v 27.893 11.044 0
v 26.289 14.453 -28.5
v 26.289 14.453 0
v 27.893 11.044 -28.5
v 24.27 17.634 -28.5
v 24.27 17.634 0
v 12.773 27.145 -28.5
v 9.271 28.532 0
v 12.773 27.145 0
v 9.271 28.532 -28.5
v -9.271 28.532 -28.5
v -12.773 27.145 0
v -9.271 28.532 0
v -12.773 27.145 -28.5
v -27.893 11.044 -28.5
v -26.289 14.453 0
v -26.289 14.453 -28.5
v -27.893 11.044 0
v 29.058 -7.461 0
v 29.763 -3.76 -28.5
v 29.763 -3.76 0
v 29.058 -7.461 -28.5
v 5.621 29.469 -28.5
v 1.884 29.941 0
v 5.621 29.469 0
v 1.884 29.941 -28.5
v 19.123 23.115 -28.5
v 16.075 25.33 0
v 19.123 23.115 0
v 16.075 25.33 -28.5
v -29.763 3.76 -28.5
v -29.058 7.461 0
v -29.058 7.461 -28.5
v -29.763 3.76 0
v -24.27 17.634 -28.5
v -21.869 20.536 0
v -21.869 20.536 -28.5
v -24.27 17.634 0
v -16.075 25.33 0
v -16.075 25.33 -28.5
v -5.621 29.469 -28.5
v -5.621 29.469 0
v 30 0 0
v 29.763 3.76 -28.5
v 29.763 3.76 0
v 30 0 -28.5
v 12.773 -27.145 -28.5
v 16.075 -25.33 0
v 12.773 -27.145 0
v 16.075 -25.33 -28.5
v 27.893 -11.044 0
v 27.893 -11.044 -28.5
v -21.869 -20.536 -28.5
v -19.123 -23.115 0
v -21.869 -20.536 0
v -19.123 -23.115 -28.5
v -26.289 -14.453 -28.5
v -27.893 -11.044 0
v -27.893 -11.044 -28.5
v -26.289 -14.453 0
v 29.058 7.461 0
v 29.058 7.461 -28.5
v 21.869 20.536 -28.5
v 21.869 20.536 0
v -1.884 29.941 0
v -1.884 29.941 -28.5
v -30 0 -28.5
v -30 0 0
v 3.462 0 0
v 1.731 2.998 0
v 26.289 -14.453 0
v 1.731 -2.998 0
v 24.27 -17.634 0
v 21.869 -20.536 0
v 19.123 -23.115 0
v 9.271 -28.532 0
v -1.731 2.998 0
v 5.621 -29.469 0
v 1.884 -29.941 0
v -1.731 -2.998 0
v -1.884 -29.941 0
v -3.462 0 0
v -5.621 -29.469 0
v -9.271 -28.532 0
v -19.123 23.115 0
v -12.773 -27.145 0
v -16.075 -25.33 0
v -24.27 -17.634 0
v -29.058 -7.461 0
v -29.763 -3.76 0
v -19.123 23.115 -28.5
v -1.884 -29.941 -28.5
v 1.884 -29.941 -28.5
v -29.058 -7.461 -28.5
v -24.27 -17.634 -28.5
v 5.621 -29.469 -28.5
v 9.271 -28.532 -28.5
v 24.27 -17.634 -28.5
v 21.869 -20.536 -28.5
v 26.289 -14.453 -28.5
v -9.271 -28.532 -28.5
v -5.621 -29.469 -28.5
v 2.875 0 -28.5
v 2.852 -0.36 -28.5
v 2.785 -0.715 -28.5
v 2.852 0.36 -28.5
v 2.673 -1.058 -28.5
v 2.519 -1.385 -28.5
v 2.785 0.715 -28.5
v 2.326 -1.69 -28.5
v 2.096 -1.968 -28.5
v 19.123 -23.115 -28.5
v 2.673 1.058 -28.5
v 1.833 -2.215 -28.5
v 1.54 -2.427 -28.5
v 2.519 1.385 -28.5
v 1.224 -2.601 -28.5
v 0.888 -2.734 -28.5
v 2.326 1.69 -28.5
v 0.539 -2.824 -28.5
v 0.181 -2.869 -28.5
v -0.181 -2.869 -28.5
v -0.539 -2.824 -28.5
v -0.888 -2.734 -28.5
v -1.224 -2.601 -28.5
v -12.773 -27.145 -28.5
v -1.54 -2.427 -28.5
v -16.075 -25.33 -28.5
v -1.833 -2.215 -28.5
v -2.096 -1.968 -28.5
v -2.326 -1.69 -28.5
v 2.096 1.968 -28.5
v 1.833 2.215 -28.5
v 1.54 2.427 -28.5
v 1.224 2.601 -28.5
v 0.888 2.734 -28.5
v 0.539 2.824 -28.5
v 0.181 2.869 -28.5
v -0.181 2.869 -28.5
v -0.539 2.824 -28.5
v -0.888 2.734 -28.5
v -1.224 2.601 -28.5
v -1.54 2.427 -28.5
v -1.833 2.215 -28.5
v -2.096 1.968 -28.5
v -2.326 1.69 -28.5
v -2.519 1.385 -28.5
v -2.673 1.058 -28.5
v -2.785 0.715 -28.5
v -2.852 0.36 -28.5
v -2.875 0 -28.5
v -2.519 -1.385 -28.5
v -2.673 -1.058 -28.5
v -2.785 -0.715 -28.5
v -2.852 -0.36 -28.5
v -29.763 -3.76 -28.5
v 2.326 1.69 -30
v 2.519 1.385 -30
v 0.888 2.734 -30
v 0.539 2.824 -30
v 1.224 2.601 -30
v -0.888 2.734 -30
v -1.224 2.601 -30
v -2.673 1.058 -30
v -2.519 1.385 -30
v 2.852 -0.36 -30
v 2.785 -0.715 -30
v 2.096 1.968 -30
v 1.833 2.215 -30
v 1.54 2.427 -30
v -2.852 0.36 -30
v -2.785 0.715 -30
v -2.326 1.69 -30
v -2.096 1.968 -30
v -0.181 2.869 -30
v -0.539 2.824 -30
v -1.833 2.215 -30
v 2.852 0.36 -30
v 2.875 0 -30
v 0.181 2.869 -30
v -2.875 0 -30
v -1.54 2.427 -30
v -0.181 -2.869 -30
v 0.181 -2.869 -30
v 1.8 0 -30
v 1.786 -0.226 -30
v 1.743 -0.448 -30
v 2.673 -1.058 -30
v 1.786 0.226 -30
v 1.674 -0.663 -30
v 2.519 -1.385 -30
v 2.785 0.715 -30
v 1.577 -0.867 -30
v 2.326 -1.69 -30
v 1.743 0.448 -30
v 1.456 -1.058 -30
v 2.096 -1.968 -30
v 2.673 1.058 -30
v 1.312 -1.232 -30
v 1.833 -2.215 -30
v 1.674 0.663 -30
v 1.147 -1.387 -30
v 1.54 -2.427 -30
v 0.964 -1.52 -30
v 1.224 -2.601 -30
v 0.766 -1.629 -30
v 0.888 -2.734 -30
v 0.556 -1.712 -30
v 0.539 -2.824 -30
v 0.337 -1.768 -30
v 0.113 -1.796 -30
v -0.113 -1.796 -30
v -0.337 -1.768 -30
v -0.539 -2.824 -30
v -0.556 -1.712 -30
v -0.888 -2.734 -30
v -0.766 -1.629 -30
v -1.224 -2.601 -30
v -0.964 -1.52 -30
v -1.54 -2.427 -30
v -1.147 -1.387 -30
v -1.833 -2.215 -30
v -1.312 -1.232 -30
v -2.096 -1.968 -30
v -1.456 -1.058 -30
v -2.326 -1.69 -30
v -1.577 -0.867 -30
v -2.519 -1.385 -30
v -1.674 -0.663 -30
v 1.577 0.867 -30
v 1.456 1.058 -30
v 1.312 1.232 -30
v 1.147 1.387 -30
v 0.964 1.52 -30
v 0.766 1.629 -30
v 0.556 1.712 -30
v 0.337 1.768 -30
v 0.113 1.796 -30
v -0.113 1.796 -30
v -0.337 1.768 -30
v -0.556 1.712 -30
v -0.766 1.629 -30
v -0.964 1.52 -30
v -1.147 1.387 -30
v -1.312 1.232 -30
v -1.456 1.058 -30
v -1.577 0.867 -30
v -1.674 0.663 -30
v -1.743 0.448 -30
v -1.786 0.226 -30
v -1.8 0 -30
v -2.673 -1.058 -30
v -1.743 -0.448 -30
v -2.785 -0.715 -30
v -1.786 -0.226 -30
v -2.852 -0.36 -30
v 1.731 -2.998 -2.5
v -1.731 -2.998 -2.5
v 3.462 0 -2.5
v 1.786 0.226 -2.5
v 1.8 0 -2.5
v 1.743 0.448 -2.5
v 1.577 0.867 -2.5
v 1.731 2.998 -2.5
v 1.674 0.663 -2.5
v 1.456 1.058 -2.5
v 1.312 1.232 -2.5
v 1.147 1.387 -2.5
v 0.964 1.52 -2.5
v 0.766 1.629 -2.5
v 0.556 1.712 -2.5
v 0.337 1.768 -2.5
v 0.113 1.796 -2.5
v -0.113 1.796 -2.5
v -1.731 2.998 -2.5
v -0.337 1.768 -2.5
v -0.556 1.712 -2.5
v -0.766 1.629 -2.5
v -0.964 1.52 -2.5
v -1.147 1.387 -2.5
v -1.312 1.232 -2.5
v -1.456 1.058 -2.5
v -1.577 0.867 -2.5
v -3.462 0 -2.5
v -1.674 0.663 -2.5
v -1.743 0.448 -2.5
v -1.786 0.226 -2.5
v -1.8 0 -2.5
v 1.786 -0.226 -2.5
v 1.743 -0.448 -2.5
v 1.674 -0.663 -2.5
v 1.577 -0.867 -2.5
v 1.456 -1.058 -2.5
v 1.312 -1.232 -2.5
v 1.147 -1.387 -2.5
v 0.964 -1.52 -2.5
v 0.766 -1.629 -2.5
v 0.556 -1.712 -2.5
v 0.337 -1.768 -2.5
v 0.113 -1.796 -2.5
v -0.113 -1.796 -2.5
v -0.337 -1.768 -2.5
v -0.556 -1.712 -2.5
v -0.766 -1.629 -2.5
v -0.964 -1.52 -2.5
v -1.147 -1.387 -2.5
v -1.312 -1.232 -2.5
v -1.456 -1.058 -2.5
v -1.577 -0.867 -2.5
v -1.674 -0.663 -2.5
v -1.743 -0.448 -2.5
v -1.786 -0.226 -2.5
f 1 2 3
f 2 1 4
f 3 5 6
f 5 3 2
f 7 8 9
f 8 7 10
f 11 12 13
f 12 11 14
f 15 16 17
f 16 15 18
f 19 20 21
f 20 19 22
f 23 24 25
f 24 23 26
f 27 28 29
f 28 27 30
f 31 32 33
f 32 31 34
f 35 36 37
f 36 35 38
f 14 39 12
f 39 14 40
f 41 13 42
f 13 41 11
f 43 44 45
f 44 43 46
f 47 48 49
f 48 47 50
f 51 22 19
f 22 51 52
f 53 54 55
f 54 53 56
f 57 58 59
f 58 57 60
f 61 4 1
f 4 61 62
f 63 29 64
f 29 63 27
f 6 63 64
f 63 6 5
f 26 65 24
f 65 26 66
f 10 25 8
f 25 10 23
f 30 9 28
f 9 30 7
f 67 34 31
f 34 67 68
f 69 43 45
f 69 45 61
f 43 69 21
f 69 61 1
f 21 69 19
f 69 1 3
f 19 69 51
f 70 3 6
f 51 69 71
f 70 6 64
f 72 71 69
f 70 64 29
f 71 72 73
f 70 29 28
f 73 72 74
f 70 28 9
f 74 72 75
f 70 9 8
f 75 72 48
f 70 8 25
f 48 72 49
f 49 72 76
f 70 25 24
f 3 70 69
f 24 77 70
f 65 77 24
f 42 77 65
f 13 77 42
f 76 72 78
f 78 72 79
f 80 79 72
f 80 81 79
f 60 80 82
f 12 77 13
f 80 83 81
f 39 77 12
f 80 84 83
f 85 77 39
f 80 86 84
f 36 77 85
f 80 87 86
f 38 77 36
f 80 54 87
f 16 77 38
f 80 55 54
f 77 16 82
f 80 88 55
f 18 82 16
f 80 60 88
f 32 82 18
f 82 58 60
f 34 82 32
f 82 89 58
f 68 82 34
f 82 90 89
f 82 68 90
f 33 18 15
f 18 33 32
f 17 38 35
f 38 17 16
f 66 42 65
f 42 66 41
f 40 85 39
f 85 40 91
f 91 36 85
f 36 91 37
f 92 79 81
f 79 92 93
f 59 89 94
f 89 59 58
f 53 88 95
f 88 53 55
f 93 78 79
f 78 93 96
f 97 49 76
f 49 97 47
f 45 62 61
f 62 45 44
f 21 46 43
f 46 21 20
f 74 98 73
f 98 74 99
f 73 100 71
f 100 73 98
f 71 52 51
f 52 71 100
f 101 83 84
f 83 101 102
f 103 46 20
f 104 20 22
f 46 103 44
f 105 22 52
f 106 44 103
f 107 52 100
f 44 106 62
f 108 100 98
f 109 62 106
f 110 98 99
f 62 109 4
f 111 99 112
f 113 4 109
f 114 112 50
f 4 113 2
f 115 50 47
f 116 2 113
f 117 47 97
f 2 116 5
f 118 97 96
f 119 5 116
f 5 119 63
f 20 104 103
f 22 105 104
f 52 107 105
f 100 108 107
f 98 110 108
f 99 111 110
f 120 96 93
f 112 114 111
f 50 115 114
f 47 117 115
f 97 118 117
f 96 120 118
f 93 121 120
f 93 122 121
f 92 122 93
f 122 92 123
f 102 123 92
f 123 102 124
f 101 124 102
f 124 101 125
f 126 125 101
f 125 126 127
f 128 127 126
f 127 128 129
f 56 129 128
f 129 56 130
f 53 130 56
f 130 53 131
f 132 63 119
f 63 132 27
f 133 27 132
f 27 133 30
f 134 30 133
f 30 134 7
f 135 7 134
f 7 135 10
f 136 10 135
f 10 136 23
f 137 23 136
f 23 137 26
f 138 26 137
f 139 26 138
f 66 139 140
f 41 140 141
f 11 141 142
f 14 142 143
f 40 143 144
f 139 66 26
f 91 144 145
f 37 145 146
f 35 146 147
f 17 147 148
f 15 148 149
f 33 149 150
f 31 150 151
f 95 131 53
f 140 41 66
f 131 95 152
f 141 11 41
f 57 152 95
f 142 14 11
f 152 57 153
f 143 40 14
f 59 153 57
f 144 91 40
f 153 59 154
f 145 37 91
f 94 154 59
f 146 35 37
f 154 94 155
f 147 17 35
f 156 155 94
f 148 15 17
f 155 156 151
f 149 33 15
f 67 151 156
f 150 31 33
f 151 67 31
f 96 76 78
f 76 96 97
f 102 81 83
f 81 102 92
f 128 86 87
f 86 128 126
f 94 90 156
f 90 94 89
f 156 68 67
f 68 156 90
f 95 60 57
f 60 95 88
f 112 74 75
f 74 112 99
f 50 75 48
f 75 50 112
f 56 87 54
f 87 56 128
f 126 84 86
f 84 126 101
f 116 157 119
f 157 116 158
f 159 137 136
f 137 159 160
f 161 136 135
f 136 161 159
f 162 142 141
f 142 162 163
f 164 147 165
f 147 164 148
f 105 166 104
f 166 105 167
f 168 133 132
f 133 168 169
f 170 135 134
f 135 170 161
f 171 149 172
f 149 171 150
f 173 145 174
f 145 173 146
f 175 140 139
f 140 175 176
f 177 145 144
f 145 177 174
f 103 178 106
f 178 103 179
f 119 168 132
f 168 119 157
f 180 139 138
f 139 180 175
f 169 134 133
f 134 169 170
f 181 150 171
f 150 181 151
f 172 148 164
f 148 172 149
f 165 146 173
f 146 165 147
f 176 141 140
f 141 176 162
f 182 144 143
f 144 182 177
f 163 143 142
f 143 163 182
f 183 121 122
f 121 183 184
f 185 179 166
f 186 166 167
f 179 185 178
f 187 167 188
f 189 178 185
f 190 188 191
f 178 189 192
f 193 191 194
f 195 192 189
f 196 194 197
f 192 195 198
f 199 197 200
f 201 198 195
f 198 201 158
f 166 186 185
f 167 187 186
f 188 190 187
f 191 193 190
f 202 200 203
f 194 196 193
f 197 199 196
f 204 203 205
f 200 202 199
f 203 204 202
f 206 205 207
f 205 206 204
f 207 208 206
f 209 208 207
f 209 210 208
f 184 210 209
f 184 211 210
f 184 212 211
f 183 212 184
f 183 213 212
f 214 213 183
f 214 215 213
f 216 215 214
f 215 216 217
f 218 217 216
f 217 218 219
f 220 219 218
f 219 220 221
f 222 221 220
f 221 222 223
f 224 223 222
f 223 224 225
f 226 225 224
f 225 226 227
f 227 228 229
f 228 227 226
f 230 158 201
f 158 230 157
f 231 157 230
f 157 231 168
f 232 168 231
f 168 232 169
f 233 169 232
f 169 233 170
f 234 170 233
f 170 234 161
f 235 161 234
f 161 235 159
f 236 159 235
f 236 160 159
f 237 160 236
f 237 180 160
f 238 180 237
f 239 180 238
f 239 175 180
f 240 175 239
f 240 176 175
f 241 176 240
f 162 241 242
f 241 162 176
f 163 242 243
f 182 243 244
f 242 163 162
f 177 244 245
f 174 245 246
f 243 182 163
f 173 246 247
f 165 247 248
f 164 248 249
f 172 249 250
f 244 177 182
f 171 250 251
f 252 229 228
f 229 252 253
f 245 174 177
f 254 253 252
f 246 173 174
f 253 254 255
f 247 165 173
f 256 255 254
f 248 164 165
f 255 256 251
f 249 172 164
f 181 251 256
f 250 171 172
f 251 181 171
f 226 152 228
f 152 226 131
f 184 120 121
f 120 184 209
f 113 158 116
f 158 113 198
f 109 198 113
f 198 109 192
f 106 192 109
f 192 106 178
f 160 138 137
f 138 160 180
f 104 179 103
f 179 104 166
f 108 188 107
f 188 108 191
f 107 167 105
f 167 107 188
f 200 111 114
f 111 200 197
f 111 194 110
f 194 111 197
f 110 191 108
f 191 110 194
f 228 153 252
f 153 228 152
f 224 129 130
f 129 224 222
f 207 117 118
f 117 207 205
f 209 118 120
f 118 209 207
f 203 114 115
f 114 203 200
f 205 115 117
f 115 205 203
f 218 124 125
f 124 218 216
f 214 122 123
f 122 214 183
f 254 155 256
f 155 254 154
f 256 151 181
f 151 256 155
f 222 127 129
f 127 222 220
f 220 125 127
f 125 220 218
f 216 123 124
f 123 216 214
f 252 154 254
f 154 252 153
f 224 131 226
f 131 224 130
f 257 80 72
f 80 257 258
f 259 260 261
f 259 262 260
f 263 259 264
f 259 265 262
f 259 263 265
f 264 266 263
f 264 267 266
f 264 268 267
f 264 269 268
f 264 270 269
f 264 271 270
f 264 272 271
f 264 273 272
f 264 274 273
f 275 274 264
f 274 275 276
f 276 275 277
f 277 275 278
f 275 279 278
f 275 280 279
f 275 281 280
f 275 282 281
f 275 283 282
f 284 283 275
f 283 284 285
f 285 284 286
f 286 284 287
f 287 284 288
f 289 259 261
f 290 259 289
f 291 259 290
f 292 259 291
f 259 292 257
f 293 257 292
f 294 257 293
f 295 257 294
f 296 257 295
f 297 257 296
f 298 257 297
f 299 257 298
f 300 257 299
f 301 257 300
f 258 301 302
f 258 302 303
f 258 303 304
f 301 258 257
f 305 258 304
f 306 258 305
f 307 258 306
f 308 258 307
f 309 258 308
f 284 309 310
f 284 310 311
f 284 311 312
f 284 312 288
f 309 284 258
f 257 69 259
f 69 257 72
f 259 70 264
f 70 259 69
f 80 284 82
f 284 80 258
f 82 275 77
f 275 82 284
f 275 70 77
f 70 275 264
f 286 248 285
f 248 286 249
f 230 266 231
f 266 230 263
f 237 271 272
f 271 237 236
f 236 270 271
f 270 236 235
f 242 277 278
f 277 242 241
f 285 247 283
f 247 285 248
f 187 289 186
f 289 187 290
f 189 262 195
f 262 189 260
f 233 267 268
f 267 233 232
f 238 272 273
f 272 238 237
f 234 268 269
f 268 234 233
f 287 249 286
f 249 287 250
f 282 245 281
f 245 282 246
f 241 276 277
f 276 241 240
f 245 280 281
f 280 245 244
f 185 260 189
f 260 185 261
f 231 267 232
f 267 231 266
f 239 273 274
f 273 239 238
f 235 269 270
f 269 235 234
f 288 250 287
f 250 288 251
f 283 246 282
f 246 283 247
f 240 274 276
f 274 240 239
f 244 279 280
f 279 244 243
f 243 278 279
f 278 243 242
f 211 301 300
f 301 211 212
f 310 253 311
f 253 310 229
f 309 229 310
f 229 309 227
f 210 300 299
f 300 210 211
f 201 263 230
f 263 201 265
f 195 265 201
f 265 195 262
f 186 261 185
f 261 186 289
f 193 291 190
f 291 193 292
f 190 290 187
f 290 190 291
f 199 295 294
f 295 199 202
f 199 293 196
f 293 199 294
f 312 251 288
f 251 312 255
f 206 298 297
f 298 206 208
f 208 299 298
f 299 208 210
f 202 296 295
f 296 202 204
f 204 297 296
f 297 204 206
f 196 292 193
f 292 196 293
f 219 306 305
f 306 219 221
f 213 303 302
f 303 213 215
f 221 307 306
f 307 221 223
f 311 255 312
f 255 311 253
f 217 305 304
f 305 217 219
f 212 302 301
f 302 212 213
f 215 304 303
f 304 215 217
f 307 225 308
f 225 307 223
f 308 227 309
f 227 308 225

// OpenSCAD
$fn = 50;

difference() {
	union() {
		translate(v = [0, 0, -28.5]) {
			cylinder(h = 28.5, r = 30.0);
		}
		#translate(v = [0, 0, -30.0]) {
			cylinder(h = 30, r = 2.875);
		}
	}
	union() {
		translate(v = [0, 0, 0]) {
			rotate(a = [0, 0, 0]) {
				difference() {
					union() {
						translate(v = [0, 0, -2.5]) {
							linear_extrude(height = 2.5) {
								polygon(points = [[3.4619999999999997, 0.0], [1.7310000000000003, 2.9981799479017264], [-1.7309999999999992, 2.9981799479017264], [-3.4619999999999997, 4.2397272186481365e-16], [-1.7310000000000014, -2.998179947901726], [1.7309999999999977, -2.9981799479017277]]);
							}
						}
					}
					union();
				}
			}
		}
		#translate(v = [0, 0, -100.0]) {
			cylinder(h = 200, r = 1.8);
		}
	}
}
